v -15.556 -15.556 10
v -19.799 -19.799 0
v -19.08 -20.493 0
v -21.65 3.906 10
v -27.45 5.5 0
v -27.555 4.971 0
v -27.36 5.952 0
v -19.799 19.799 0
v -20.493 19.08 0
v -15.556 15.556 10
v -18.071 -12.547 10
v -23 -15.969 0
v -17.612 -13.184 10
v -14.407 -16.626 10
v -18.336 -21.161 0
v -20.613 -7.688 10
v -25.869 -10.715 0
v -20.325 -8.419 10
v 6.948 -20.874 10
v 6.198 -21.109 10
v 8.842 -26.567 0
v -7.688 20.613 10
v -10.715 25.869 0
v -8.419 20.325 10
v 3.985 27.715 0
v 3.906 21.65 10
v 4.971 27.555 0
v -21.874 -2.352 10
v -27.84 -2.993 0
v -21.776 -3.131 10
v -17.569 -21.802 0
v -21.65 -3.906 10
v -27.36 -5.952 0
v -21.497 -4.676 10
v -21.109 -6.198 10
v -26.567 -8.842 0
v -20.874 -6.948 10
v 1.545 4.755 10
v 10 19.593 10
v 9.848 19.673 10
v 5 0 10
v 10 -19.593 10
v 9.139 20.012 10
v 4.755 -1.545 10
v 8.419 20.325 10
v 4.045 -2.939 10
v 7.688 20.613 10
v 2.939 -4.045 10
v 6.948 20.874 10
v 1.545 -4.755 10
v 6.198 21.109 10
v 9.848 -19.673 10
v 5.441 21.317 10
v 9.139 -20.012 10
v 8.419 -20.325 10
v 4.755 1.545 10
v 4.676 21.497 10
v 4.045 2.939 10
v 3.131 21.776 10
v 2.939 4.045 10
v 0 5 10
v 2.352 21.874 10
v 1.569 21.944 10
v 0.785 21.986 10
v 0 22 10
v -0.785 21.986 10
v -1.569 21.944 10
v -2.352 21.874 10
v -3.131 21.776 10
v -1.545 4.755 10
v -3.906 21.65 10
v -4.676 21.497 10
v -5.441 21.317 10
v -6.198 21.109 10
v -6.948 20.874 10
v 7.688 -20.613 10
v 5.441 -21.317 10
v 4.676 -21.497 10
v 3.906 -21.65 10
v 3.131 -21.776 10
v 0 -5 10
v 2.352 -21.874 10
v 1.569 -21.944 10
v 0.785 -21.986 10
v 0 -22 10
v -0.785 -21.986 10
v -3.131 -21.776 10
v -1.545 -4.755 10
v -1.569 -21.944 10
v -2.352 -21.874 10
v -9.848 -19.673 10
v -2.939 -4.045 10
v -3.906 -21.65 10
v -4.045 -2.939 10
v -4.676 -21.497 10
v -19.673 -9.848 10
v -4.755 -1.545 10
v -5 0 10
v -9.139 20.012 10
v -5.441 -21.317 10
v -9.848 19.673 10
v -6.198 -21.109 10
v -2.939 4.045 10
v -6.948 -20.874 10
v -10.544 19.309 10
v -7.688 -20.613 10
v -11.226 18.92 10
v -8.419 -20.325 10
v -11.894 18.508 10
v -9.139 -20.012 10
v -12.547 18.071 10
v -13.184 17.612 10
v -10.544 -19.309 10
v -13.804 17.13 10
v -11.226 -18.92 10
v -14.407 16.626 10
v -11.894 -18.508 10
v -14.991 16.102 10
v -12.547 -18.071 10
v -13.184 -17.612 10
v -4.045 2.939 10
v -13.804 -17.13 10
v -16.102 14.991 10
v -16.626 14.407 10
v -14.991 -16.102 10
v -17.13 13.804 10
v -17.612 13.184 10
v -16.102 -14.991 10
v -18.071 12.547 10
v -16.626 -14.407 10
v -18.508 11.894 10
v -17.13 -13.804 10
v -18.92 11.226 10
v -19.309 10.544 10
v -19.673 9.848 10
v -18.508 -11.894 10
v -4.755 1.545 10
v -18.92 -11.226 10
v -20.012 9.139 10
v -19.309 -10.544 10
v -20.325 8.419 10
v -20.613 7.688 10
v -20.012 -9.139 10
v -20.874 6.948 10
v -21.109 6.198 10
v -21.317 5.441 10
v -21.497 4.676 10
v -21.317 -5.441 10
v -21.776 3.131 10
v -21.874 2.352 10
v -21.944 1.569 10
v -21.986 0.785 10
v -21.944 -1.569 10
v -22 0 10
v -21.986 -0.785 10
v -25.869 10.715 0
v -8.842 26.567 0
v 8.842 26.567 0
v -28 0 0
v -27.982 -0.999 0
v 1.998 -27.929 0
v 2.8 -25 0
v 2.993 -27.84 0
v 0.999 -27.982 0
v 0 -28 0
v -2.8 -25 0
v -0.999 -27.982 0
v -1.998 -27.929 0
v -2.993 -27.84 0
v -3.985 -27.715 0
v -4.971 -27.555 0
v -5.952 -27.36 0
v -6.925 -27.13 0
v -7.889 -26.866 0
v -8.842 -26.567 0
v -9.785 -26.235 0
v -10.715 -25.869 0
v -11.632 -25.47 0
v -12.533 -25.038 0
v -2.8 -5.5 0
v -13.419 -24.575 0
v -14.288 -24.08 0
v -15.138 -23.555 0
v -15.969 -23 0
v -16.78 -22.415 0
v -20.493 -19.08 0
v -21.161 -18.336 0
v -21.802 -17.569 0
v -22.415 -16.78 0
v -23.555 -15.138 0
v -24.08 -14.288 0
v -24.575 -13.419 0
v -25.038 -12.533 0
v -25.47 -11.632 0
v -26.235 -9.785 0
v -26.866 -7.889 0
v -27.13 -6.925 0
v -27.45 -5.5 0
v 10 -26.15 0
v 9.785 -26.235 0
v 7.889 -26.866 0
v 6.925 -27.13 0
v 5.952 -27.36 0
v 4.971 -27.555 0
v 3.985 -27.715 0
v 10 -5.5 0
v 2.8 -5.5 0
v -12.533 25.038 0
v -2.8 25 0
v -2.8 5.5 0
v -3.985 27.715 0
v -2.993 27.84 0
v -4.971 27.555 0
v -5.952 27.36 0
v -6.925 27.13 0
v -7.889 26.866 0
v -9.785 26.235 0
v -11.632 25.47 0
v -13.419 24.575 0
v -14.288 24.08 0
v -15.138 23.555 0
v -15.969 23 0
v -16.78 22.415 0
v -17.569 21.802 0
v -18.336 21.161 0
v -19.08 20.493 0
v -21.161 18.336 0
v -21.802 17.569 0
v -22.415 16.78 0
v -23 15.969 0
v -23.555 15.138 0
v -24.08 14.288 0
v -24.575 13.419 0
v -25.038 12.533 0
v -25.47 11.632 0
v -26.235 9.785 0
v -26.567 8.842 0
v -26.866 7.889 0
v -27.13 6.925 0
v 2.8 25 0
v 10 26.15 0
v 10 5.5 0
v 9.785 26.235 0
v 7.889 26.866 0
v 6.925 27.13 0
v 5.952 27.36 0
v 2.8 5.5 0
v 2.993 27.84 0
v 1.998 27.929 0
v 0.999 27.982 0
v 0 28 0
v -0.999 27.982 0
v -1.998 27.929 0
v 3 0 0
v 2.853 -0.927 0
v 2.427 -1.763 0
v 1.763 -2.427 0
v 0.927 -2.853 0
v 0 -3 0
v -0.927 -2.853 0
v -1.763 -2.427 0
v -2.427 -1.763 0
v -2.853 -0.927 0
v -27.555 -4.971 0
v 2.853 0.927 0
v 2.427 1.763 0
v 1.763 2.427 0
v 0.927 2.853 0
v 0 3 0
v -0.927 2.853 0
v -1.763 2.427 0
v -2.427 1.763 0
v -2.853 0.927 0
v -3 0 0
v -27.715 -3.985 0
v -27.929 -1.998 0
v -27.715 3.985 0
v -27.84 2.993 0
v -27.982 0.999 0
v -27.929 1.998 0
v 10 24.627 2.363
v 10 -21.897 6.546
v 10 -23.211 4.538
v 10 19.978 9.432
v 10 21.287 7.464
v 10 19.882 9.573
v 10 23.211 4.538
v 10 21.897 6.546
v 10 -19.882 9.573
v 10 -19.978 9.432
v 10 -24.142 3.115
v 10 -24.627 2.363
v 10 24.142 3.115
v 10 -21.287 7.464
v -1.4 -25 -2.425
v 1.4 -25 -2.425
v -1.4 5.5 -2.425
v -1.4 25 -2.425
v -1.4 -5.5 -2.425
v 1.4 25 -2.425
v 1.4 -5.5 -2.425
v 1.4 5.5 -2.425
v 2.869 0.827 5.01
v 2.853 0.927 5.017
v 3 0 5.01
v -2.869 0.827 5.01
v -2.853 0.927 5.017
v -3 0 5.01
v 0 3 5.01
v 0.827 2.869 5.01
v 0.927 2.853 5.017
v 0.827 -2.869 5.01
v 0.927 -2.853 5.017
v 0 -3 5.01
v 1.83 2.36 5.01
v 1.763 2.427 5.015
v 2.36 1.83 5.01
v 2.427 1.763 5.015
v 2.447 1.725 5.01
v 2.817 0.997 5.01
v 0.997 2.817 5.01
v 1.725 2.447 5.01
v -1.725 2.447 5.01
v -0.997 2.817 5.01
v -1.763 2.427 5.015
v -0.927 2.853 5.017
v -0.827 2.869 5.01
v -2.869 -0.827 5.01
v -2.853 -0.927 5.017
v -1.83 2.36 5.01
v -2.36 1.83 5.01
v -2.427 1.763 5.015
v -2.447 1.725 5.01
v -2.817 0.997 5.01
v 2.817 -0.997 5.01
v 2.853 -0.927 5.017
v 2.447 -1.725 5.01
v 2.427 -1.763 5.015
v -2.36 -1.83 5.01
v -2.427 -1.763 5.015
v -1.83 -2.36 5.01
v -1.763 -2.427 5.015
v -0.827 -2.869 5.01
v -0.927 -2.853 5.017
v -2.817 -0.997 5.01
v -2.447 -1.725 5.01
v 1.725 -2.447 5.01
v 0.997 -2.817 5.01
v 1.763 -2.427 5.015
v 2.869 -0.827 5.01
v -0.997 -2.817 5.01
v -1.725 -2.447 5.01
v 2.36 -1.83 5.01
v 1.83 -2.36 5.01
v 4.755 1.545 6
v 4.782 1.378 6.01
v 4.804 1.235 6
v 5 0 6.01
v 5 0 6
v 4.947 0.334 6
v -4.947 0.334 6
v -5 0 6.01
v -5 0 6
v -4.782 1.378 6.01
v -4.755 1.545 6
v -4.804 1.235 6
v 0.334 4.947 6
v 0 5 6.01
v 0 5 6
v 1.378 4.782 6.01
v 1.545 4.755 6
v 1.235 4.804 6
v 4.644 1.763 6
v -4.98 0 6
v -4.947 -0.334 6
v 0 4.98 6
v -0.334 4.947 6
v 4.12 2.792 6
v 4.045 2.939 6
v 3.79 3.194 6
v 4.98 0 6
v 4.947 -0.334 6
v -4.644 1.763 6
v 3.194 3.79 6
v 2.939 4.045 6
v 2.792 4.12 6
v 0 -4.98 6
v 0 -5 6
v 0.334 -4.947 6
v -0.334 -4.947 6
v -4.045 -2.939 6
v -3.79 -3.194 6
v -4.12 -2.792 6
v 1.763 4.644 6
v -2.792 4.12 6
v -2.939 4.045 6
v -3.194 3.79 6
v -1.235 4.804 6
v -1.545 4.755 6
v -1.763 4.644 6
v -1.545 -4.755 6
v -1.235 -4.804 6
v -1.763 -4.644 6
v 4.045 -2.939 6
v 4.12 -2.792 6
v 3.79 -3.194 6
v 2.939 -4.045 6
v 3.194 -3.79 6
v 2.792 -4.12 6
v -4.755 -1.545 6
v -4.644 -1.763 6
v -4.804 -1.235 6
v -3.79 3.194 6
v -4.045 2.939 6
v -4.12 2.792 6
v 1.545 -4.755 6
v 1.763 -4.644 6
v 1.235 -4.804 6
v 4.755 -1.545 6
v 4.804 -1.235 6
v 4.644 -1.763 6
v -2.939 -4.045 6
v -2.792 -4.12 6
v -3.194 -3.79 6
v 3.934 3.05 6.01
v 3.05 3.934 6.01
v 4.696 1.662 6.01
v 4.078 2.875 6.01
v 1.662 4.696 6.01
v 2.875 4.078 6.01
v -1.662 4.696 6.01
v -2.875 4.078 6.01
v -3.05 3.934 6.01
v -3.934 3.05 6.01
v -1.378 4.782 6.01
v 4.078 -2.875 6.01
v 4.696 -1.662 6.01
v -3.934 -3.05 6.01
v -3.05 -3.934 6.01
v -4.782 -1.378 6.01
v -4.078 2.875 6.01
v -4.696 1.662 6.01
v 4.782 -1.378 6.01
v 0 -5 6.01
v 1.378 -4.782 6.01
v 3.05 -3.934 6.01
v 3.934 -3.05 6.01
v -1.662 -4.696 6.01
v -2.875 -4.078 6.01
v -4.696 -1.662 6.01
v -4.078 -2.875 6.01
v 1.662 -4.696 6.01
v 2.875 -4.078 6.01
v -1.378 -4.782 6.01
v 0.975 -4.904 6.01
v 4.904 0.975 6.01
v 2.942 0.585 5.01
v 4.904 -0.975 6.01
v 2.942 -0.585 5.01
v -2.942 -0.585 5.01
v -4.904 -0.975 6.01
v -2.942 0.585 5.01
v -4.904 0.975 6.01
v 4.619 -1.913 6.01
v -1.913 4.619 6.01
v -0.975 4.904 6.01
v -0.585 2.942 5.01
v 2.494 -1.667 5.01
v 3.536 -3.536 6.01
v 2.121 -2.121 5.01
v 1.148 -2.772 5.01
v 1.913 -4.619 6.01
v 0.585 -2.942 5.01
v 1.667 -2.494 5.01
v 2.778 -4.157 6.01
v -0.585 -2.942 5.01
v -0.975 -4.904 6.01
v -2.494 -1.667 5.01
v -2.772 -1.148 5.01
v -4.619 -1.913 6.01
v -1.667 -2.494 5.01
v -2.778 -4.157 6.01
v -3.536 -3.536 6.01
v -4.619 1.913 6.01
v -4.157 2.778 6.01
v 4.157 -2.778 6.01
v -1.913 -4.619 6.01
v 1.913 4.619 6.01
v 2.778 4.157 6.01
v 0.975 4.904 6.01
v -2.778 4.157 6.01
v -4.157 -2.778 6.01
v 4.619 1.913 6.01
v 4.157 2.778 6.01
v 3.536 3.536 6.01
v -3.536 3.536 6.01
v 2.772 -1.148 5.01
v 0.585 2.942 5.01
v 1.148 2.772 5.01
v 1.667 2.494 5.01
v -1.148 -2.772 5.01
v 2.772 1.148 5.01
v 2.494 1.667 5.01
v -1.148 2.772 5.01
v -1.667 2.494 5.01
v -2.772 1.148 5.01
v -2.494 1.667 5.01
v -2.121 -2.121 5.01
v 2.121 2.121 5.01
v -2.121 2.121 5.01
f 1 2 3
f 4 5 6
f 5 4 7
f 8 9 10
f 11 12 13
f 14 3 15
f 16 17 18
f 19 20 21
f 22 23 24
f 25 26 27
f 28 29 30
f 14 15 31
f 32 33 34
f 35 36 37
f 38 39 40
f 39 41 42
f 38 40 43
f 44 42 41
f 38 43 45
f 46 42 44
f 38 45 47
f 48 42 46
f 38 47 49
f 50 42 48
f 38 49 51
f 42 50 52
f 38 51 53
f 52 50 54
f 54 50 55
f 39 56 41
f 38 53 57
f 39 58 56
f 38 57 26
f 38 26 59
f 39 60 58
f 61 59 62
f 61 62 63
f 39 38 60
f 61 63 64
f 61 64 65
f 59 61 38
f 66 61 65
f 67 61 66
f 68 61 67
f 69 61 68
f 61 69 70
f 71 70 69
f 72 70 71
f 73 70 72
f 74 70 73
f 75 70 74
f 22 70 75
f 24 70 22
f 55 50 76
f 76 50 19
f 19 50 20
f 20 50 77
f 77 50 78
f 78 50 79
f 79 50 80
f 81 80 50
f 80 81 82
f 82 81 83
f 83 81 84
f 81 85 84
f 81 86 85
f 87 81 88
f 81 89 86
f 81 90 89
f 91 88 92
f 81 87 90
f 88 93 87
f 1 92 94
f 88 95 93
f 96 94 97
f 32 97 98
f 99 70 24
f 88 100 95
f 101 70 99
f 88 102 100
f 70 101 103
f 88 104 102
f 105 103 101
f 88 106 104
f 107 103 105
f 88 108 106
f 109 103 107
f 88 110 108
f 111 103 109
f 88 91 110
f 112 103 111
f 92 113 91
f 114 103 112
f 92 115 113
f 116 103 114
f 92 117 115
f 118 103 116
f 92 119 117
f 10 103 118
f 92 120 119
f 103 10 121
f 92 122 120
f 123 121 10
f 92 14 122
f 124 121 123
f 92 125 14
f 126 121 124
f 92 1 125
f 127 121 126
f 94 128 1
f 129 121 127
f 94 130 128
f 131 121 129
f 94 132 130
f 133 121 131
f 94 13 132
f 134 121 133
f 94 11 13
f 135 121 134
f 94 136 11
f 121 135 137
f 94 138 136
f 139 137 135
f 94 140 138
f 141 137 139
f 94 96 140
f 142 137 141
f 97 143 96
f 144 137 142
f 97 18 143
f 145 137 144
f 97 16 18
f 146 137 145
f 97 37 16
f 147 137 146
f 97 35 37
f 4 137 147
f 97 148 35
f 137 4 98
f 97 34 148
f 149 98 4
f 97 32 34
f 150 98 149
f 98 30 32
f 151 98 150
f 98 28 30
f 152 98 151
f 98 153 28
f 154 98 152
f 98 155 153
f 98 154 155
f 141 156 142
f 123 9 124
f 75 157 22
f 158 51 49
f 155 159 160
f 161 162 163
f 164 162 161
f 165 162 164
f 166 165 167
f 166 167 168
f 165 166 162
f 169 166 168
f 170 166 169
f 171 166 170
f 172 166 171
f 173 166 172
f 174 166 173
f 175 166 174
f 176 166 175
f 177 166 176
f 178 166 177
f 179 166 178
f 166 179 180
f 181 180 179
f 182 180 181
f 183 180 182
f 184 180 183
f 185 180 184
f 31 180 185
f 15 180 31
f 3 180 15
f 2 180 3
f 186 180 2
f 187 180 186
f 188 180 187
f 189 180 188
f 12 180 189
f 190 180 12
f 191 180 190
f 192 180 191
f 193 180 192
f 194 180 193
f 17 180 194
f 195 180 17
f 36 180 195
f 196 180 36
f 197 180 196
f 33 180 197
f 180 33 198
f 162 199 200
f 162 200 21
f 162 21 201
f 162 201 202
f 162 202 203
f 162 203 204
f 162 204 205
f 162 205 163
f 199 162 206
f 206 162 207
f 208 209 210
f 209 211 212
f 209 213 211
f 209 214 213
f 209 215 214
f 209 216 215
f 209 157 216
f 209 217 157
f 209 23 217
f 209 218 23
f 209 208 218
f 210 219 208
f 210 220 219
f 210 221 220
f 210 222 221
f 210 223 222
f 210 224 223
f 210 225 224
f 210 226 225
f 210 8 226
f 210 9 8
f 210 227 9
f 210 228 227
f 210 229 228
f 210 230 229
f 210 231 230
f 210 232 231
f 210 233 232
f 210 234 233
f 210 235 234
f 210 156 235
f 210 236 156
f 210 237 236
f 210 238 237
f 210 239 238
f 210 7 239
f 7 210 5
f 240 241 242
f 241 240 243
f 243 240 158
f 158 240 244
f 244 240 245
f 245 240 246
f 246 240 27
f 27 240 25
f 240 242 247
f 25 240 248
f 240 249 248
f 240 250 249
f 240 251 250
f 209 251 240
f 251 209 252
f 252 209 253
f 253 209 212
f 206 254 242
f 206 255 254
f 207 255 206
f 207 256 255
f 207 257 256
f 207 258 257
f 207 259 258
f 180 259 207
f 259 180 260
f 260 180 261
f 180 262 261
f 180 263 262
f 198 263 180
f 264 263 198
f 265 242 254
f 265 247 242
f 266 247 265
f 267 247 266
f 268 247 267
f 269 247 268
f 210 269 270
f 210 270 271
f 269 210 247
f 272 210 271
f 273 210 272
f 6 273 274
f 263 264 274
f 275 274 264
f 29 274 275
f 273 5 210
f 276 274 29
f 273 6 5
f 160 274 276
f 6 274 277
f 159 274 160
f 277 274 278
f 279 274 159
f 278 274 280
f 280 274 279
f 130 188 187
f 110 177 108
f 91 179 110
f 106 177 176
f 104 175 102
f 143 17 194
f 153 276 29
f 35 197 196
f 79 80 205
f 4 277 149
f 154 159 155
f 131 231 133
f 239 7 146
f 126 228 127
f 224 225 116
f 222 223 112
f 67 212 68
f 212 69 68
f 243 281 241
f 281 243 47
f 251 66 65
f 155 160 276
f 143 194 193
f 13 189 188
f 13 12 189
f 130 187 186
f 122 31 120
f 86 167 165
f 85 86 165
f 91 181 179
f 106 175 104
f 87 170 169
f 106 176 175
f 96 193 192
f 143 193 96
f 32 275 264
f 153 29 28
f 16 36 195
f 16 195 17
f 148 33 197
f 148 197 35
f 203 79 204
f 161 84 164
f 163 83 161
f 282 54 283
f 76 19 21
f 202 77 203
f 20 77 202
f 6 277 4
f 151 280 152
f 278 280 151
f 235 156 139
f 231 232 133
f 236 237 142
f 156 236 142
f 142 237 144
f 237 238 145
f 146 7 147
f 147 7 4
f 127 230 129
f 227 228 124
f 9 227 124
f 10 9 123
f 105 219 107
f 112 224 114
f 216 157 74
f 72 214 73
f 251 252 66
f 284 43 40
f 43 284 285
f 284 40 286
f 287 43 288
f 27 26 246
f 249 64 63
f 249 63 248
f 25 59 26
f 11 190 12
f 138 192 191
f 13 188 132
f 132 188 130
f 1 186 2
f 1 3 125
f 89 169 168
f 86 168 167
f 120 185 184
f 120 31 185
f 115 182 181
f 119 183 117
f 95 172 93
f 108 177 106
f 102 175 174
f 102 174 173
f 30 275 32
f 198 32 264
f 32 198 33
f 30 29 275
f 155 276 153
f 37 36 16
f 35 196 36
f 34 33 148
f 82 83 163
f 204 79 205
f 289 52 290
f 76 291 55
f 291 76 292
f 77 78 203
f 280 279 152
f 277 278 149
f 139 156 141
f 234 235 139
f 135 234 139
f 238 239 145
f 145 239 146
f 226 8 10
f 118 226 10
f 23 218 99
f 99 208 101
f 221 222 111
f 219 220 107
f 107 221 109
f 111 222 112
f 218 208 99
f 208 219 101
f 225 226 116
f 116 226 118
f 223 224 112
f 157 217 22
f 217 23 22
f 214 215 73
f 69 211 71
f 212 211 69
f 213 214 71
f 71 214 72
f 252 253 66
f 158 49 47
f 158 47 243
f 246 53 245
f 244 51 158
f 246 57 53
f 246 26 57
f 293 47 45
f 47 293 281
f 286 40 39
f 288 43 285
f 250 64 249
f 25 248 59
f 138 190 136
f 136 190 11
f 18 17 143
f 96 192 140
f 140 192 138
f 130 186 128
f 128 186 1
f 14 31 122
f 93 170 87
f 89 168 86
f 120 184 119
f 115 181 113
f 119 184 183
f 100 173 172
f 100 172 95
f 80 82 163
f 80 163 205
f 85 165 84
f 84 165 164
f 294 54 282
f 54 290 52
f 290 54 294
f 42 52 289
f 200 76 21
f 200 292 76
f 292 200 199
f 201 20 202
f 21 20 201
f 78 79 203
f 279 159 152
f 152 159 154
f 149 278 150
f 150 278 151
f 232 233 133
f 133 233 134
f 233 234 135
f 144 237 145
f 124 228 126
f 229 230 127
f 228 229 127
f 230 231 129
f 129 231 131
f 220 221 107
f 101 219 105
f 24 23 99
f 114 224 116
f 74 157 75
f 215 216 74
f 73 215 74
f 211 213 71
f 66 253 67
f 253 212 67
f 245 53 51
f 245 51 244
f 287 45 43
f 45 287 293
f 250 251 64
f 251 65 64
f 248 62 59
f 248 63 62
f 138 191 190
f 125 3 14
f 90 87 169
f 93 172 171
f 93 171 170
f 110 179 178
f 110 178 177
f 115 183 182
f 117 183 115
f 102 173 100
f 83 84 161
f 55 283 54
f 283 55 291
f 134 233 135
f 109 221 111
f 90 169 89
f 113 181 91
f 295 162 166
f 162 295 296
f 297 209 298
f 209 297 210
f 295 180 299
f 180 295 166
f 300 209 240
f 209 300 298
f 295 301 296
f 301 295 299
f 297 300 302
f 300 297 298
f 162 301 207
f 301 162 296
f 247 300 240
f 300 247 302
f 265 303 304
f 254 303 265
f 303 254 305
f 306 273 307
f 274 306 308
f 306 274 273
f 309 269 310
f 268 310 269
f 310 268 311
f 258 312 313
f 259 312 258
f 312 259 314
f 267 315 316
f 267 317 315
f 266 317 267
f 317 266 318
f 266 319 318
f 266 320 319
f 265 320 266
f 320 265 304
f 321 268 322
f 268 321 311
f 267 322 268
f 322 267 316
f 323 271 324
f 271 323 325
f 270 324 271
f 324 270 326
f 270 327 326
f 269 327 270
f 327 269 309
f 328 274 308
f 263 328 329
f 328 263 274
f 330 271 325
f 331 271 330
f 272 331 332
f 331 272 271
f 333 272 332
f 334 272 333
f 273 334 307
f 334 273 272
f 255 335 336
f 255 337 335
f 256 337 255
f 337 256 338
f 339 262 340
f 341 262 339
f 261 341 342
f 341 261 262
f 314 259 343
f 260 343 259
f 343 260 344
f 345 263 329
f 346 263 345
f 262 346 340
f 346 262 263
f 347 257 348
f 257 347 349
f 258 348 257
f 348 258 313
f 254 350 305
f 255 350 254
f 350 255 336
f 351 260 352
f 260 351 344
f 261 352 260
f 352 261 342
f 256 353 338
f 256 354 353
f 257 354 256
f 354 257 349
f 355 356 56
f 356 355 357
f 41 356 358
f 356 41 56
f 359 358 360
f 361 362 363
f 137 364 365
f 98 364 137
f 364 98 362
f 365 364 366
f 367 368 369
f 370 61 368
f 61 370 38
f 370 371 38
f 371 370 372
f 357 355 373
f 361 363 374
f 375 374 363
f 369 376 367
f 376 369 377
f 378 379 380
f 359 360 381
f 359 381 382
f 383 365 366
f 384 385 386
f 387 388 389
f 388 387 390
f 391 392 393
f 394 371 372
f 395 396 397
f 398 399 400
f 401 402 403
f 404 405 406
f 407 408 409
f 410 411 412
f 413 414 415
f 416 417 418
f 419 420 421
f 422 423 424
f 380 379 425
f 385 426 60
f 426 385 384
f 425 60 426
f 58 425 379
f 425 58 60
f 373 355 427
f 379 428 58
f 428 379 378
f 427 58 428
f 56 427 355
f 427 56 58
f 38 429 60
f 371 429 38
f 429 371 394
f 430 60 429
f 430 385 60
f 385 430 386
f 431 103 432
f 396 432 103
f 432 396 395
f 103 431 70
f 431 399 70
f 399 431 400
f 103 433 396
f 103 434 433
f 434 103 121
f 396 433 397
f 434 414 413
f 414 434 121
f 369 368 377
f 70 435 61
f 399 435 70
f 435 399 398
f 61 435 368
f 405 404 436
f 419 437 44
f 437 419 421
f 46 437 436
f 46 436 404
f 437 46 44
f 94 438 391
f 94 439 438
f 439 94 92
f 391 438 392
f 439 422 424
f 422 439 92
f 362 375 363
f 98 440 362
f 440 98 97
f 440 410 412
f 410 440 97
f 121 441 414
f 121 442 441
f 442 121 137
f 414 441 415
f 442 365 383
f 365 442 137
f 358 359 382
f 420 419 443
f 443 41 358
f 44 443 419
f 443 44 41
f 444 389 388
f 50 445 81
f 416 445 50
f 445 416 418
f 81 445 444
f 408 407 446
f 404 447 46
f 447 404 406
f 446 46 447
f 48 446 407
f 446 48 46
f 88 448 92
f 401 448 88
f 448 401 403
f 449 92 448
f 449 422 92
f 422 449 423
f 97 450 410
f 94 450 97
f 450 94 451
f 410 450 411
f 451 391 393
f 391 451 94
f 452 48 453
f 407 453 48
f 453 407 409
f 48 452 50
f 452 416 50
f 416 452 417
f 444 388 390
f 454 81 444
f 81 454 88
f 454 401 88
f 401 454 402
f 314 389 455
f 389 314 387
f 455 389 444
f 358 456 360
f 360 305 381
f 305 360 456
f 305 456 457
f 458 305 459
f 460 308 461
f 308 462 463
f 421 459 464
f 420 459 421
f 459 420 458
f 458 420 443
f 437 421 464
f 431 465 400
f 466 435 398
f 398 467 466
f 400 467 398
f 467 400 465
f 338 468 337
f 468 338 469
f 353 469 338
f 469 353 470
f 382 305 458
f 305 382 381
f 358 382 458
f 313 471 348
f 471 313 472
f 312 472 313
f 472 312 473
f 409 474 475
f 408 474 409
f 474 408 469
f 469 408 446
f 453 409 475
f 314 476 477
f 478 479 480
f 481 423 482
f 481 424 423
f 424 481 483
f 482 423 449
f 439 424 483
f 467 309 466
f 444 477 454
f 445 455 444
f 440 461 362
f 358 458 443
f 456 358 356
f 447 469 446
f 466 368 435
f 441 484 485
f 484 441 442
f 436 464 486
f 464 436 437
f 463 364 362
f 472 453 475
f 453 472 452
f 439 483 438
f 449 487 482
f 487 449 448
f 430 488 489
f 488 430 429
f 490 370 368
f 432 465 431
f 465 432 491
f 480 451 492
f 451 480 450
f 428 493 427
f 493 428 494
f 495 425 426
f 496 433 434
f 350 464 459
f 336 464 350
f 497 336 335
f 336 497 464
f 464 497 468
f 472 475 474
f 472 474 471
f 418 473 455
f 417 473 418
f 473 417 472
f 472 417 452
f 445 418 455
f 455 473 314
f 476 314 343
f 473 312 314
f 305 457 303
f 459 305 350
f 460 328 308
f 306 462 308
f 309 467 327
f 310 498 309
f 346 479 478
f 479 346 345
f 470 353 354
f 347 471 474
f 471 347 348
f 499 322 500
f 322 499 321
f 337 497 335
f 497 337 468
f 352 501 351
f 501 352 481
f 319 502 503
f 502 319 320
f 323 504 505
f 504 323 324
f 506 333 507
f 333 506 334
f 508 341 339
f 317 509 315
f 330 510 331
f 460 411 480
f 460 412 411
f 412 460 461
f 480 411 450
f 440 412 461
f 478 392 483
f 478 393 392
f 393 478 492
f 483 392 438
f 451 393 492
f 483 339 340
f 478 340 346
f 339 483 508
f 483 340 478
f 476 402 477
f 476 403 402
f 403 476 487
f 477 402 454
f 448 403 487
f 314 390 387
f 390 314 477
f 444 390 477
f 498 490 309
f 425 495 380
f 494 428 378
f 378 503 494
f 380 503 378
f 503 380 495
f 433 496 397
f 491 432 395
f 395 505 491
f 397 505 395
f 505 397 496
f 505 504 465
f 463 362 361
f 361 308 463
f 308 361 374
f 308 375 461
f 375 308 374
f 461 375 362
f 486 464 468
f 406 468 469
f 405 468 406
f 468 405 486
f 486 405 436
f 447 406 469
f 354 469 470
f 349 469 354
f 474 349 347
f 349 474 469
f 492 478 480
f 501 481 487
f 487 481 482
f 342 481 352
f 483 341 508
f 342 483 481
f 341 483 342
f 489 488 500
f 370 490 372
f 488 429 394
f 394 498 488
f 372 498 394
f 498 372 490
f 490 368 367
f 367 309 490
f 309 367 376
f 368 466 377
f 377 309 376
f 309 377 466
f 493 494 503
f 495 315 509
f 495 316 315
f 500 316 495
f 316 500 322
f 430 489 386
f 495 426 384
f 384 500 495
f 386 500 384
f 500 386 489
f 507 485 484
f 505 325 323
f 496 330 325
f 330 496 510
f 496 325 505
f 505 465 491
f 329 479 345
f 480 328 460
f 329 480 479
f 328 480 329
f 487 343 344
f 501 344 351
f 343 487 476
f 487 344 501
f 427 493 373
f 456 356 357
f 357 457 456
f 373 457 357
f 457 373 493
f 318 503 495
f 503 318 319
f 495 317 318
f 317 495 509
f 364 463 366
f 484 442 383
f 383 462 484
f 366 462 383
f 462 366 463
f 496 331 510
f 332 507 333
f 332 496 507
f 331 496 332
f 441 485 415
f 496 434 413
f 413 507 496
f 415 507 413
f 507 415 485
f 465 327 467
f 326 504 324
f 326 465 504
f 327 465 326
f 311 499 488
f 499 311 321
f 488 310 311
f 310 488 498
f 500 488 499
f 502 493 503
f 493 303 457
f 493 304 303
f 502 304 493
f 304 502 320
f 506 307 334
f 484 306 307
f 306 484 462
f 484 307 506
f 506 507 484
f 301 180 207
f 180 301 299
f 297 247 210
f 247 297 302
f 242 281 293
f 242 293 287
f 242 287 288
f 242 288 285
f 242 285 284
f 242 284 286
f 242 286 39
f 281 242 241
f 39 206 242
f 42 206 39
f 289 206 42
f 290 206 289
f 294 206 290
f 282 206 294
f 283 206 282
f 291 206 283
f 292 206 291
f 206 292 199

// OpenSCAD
// file: config.scad
//triangular vertex peices
$fa=1;
$fs=1;
ep=0.01;
//parametrics
//cutout for the AL extrusions, with 2 opposite tracks having an inset
//tweaked from ideal to satisfy printing limits
side=20;    //size of a side of the extrusion
slot=6-.4;     //width of the slots, on the face
central=8+1;  //how wide the central pillar is; the slot depth is then (side-central)/2
//corner radius
vertex_rad=40;
//distance from edge to vertical 2020 shaft
vert_inset=6;
//thickness of the wall on the inside of the triangle
inside_wall_thick=6;
//belt channel width
channel_width=26;
//lenght of plastic alongside in-plane extrusion
wing_length=70;
//height of the frame piece
piece_h=50;
//mounting hardware
m5_slot=6;
m5_head=10; //diameter of M5 head
m5_wall=5; //thickness of plastic between M5 and extrusion
//m3 sizing
m3_slot=3.5;
module 2020_cutout_two()
{
    ss=side+.8; //printer tolerance
    difference()
    {
        //main body
        square([ss,ss],center=true);
        //track slots
        translate([ss/2+central/2,0])square([ss,slot],center=true);
        translate([-(ss/2+central/2),0])square([ss,slot],center=true);
        translate([0,(ss/2+central/2)])square([slot,ss],center=true);
    }
}
module nut_fill()
{
    nut_w=10.5+1;
    nut_w_b=6.5+1.5;
    nut_depth=(side-central)/2;
    //spaces for inserting the t slot nuts
    //translate([0,0,-nut_depth/2])
    hull()
    {
        cube([nut_w+3,nut_w*2,ep],center=true);
        translate([0,0,-nut_depth])cube([nut_w_b,nut_w*2,ep],center=true);
    }
    //cube([nut_w,nut_w*2,nut_depth],center=true);
}
module base_shape()
{
    difference()
    {
        union()
        {
            //rounded vertex
            circle(r=vertex_rad,center=true);
            //'wings' along in plane extrusion lengths
            rotate([0,0,60])translate([-side+vertex_rad-inside_wall_thick*2,wing_length/2])square([inside_wall_thick*4,wing_length],center=true); 
            rotate([0,0,-60])translate([-side+vertex_rad-inside_wall_thick*2,-wing_length/2])square([inside_wall_thick*4,wing_length],center=true); 
        }
        //in plane extrusions
        rotate([0,0,60])translate([-side/2+vertex_rad,vertex_rad/2])square([side,vertex_rad],center=true);
        rotate([0,0,-60])translate([-side/2+vertex_rad,-vertex_rad/2])square([side,vertex_rad],center=true);
        //vertical extrusion
        translate([(-side/2)+vertex_rad-vert_inset,0,0])rotate([0,0,90])2020_cutout_two();
        //opening for belts or motor
        motor_gap();
        //any remaining portion of hte circle we want removed
        open_inside();
    }
}
module motor_gap()
{
    //create rough triangle of unneeded area
    round=2;
    xx=-side-inside_wall_thick-round;
    qq=-(channel_width)/2+vertex_rad-vert_inset-side-inside_wall_thick;
    //make round
    minkowski()
    {
        intersection()
        {
            rotate([0,0,60])translate([xx,0])square([vertex_rad*2,vertex_rad*4],center=true);
            rotate([0,0,-60])translate([xx,0])square([vertex_rad*2,vertex_rad*4],center=true);
            translate([qq,0])square([channel_width-round*2,vertex_rad*2],center=true);
        }
        circle(r=round+0.01,$fn=40);
    }
}
module open_inside()
{
    //rest of interior
    //create rough triangle of unneeded area
    round=2;
    xx=-side-inside_wall_thick-round;
    qq=-side-inside_wall_thick-vert_inset-channel_width-inside_wall_thick;
    //make round
    minkowski()
    {
        intersection()
        {
            rotate([0,0,60])translate([xx,wing_length])square([vertex_rad*2,vertex_rad*4+wing_length],center=true);
            rotate([0,0,-60])translate([xx,-wing_length])square([vertex_rad*2,vertex_rad*4+wing_length],center=true);
            translate([qq,0])square([vertex_rad*2-round*2,vertex_rad*2+wing_length],center=true);
        }
        circle(r=round+0.01,$fn=40);
    }
}
// main file
disc_r=25;
disc_h=10;
$fs=1;
$fa=.5;
nut_l=11;
include <config.scad>;
difference()
{
    union()
    {
        cylinder(r1=disc_r+3,r2=disc_r-3,h=disc_h);
        rotate([90,0,0])cylinder(r=slot/2,h=disc_r*2,$fn=6,center=true);
    }
    translate([0,0,0])rotate([0,0,0])cylinder(r=m5_slot/2,h=50,$fn=20,center=true);
    translate([0,0,25+inside_wall_thick])rotate([0,0,0])cylinder(r=m5_head/2,h=50,$fn=20,center=true);
    translate([0,0,inside_wall_thick-1+ep])cylinder(r1=m5_slot/2,r2=m5_head/2,h=1);
    translate([0,0,-5])cube([disc_r*4,nut_l,10],center=true);
    translate([2*disc_r+side/2,0,0])cube([disc_r*4,disc_r*4,disc_h*4],center=true);
}
